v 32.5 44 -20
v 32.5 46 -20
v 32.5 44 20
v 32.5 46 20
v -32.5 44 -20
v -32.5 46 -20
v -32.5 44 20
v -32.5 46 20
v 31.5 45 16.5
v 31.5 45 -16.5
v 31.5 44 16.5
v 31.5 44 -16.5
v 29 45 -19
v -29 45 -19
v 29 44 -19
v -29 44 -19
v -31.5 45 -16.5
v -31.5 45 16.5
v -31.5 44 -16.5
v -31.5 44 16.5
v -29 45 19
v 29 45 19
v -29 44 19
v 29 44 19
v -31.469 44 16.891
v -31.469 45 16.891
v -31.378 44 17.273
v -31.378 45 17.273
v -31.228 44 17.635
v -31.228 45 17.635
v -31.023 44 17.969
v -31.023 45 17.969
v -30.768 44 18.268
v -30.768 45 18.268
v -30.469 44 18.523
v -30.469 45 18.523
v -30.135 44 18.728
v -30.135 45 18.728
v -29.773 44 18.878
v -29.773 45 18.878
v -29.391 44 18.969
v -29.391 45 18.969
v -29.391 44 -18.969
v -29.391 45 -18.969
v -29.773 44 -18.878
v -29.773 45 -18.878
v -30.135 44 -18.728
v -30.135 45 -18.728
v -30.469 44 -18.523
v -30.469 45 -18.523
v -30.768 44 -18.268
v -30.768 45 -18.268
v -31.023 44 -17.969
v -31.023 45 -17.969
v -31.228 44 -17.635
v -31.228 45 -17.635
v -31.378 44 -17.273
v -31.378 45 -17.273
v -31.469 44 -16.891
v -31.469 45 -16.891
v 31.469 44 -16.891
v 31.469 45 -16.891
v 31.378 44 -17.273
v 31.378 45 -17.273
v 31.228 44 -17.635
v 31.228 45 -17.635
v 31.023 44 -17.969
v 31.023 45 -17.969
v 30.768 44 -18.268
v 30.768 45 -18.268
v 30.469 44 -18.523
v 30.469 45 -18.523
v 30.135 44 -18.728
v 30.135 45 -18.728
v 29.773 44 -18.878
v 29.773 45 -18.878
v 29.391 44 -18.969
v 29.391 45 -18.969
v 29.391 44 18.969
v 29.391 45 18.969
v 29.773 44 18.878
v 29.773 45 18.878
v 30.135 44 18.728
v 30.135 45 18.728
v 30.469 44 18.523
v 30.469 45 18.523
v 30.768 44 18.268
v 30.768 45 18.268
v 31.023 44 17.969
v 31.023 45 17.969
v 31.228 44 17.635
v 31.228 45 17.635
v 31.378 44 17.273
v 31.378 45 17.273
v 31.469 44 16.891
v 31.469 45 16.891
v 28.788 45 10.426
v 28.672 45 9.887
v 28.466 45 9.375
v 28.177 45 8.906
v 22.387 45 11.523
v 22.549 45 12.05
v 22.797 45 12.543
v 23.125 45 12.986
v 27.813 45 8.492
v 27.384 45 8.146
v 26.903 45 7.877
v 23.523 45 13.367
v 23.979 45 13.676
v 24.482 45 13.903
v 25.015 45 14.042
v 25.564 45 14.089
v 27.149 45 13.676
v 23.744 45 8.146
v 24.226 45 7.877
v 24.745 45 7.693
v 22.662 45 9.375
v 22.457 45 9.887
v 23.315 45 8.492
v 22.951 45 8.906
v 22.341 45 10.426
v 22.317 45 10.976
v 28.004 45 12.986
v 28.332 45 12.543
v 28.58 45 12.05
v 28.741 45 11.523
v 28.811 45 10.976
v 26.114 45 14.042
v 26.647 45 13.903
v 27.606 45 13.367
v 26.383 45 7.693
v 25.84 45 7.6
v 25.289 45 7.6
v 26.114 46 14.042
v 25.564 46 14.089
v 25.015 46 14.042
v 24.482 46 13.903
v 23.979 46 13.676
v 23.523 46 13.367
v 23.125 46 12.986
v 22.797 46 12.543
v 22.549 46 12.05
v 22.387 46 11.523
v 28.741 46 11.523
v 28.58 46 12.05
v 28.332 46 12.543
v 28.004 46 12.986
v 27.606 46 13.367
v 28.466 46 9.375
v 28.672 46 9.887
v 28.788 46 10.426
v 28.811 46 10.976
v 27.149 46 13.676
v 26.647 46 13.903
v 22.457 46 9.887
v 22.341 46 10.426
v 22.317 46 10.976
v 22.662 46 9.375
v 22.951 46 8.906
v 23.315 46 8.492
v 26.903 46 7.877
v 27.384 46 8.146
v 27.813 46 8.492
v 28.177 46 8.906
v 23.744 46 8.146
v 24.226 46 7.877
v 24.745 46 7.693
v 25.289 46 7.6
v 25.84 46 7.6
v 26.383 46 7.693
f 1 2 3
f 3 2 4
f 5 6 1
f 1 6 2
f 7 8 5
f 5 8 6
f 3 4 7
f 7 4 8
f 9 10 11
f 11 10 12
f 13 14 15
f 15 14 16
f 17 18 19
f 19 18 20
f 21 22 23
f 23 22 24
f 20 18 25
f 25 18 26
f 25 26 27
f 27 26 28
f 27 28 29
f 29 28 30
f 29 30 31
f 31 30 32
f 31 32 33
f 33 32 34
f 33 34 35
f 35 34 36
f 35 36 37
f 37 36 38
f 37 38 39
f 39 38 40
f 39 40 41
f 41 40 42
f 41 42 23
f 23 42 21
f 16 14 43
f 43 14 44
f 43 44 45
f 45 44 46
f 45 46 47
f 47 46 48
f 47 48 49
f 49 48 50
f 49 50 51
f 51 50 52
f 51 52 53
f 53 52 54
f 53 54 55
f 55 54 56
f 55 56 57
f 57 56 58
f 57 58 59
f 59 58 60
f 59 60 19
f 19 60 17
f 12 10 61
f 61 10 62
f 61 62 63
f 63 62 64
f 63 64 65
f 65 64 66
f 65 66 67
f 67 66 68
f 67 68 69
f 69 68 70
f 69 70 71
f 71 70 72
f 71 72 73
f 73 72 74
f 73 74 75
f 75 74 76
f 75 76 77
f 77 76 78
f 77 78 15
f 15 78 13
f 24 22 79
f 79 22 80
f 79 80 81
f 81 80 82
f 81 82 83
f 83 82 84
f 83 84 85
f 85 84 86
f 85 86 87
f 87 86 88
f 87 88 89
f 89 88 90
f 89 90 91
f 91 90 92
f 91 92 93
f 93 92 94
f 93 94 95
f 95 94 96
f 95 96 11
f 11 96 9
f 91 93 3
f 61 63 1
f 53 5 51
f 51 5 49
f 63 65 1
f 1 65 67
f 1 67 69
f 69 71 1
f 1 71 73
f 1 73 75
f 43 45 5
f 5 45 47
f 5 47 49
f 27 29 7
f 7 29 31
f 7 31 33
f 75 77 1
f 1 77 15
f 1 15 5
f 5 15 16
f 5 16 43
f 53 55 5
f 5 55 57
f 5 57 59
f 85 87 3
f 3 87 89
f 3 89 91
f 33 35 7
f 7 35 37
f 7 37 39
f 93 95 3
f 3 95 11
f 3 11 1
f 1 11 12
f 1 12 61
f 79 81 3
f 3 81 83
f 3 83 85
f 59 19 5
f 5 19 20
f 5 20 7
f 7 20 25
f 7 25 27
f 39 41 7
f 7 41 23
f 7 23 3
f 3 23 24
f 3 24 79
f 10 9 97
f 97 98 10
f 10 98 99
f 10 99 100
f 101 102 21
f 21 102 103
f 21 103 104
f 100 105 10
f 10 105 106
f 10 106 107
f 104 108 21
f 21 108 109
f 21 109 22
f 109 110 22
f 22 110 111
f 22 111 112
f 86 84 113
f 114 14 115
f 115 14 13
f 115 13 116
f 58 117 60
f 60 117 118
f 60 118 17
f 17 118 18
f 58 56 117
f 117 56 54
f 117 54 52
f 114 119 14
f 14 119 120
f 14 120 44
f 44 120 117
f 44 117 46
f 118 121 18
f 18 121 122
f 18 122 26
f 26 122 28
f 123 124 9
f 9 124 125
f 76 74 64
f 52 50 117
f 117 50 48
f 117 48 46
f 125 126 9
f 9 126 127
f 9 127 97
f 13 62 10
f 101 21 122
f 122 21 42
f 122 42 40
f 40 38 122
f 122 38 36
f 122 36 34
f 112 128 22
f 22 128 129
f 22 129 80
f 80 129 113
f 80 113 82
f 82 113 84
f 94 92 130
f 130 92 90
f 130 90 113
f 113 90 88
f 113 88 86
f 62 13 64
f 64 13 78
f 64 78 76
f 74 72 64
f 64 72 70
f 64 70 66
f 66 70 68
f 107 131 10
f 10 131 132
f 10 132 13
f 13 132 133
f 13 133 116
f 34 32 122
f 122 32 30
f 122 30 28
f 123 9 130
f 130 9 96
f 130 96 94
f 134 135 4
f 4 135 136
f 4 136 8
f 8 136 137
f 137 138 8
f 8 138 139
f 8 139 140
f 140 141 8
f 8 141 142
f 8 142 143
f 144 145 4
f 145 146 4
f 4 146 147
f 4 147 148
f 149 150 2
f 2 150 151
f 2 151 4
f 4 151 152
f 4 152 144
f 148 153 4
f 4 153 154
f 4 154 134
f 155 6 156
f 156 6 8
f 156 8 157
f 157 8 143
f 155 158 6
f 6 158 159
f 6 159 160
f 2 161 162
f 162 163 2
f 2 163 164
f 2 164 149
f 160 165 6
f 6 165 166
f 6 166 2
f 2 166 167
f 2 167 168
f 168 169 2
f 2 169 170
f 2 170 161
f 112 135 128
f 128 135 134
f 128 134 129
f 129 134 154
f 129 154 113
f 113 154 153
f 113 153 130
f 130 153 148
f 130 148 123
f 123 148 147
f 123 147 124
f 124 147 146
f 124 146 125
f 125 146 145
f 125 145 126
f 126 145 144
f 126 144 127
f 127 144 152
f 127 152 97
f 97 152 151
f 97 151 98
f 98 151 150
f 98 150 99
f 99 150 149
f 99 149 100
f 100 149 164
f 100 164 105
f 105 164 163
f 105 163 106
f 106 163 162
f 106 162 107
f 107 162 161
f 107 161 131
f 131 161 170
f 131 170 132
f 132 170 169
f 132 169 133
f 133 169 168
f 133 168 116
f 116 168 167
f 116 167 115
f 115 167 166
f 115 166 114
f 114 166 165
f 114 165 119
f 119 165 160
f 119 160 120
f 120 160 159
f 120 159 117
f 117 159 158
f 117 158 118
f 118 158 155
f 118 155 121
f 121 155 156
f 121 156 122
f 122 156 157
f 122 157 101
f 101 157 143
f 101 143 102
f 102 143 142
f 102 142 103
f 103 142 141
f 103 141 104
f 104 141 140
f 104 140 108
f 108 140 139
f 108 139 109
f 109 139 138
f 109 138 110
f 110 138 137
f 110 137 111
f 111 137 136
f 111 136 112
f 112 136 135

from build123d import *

# Parameters (mm, degrees)
SKETCH1_W           = 65
SKETCH1_H           = 40
BOSS_EXTRUDE1_DEPTH = 45
SHELL1_T            = -1
SKETCH2_R           = 5
CUT_EXTRUDE1_DEPTH  = 8
SKETCH3_R           = 7.5
CUT_EXTRUDE2_DEPTH  = 8
FILLET1_R           = 2
FILLET2_R           = 2.5
SKETCH5_W           = 66.843722153
SKETCH5_H           = 46.578661822
CUT_EXTRUDE3_DEPTH  = 250
SKETCH7_W           = 65
SKETCH7_H           = 40
BOSS_EXTRUDE3_DEPTH = 1
SKETCH8_R           = 3.25
CUT_EXTRUDE4_DEPTH  = 7


with BuildPart() as part:
    # Sketch1 → Boss-Extrude1 (new body)
    with BuildSketch(Plane(origin=(0, 0, 0), x_dir=(1, 0, 0), z_dir=(0, 1, 0))):
        Rectangle(SKETCH1_W, SKETCH1_H)
    extrude(amount=BOSS_EXTRUDE1_DEPTH)

    # Shell1
    shell1_openings = [part.faces().sort_by_distance(p)[0] for p in [
        (0, 45, 0),
    ]]
    offset(amount=SHELL1_T, openings=shell1_openings, kind=Kind.INTERSECTION)

    # Sketch2 → Cut-Extrude1 (cut)
    with BuildSketch(Plane(origin=(32.5, 0, 0), x_dir=(0, 0, -1), z_dir=(1, 0, 0))):
        with Locations((0, 26)):
            Circle(SKETCH2_R)
    extrude(amount=-CUT_EXTRUDE1_DEPTH, mode=Mode.SUBTRACT)

    # Sketch3 → Cut-Extrude2 (cut)
    with BuildSketch(Plane.XZ):
        with Locations(Location((0, 0, 0), (0, 0, 270))):
            Circle(SKETCH3_R)
    extrude(amount=-CUT_EXTRUDE2_DEPTH, mode=Mode.SUBTRACT)

    # Fillet1
    # the kernel refuses this fillet: 2 mm, written as the material it adds along each edge
    with BuildSketch(Plane(origin=(31.5, 1, 19), x_dir=(0, 1, 0), z_dir=(0, 0, -1)), Plane(origin=(-31.5, 1, -19), x_dir=(0, 1, 0), z_dir=(0, 0, 1))) as fillet1_piece_1:
        with BuildLine():
            CenterArc((FILLET1_R, -FILLET1_R), FILLET1_R, 90, 90)
            Line((0, -FILLET1_R), (0, 0))
            Line((0, 0), (FILLET1_R, 0))
        make_face()
    extrude(amount=38)
    with BuildSketch(Plane(origin=(31.5, 1, -19), x_dir=(0, 1, 0), z_dir=(-1, 0, 0)), Plane(origin=(-31.5, 1, 19), x_dir=(0, 1, 0), z_dir=(1, 0, 0))) as fillet1_piece_2:
        with BuildLine():
            CenterArc((FILLET1_R, -FILLET1_R), FILLET1_R, 90, 90)
            Line((0, -FILLET1_R), (0, 0))
            Line((0, 0), (FILLET1_R, 0))
        make_face()
    extrude(amount=63)
    # the kernel refuses this fillet: 2 mm, written as the material it takes off along each edge
    with BuildSketch(Plane(origin=(0, 1, 0), x_dir=(0, 0, -1), z_dir=(-1, 0, 0))) as fillet1_2_piece_1:
        with BuildLine():
            CenterArc((9.232050808, 2), FILLET1_R, 210, 60)
            Line((9.232050808, 0), (7.5, 0))
            Line((7.5, 0), (7.5, 1))
        make_face()
    revolve(axis=Axis((0, 1, 0), (0, -1, 0)), mode=Mode.SUBTRACT)

    # Fillet2
    # the kernel refuses this fillet: 2.5 mm, written as the material it adds along each edge
    with BuildSketch(Plane(origin=(-29, 1, -16.5), x_dir=(-1, 0, 0), z_dir=(0, 0, 1))) as fillet2_piece_1:
        with BuildLine():
            CenterArc((0.5, -2), 2, 0, 90)
            Line((2.5, -2), (2.5, 0))
            Line((2.5, 0), (0.5, 0))
        make_face()
    revolve(axis=Axis((-29, 1, -16.5), (0, -1, 0)), revolution_arc=90)
    with BuildSketch(Plane(origin=(29, 1, -16.5), x_dir=(0, 0, -1), z_dir=(-1, 0, 0))) as fillet2_piece_2:
        with BuildLine():
            CenterArc((0.5, -2), 2, 0, 90)
            Line((2.5, -2), (2.5, 0))
            Line((2.5, 0), (0.5, 0))
        make_face()
    revolve(axis=Axis((29, 1, -16.5), (0, -1, 0)), revolution_arc=90)
    with BuildSketch(Plane(origin=(-29, 1, 16.5), x_dir=(0, 0, 1), z_dir=(1, 0, 0))) as fillet2_piece_3:
        with BuildLine():
            CenterArc((0.5, -2), 2, 0, 90)
            Line((2.5, -2), (2.5, 0))
            Line((2.5, 0), (0.5, 0))
        make_face()
    revolve(axis=Axis((-29, 1, 16.5), (0, -1, 0)), revolution_arc=90)
    with BuildSketch(Plane(origin=(29, 1, 16.5), x_dir=(1, 0, 0), z_dir=(0, 0, -1))) as fillet2_piece_4:
        with BuildLine():
            CenterArc((0.5, -2), 2, 0, 90)
            Line((2.5, -2), (2.5, 0))
            Line((2.5, 0), (0.5, 0))
        make_face()
    revolve(axis=Axis((29, 1, 16.5), (0, -1, 0)), revolution_arc=90)
    with BuildSketch(Plane(origin=(31.5, 1, 19), x_dir=(0, 0, -1), z_dir=(0, 1, 0)), Plane(origin=(31.5, 1, -19), x_dir=(-1, 0, 0), z_dir=(0, 1, 0)), Plane(origin=(-31.5, 45, 19), x_dir=(0, 0, -1), z_dir=(0, -1, 0))) as fillet2_piece_5:
        with BuildLine():
            CenterArc((FILLET2_R, FILLET2_R), FILLET2_R, 180, 90)
            Line((0, FILLET2_R), (0, 0))
            Line((0, 0), (FILLET2_R, 0))
        make_face()
    extrude(amount=44)
    with BuildSketch(Plane(origin=(-31.5, 1, -19), x_dir=(1, 0, 0), z_dir=(0, 1, 0))) as fillet2_piece_6:
        with BuildLine():
            CenterArc((FILLET2_R, -FILLET2_R), FILLET2_R, 90, 90)
            Line((0, -FILLET2_R), (0, 0))
            Line((0, 0), (FILLET2_R, 0))
        make_face()
    extrude(amount=44)

    # Sketch5 → Cut-Extrude3 (cut)
    with BuildSketch(Plane.XY.offset(20)):
        with Locations((0.921861077, 20.710669089)):
            Rectangle(SKETCH5_W, SKETCH5_H)
    extrude(amount=-CUT_EXTRUDE3_DEPTH, mode=Mode.SUBTRACT)

    # Sketch7 → Boss-Extrude3 (add)
    with BuildSketch(Plane(origin=(0, 45, 0), x_dir=(1, 0, 0), z_dir=(0, 1, 0))):
        Rectangle(SKETCH7_W, SKETCH7_H)
    extrude(amount=BOSS_EXTRUDE3_DEPTH)

    # Sketch8 → Cut-Extrude4 (cut)
    with BuildSketch(Plane(origin=(0, 46, 0), x_dir=(1, 0, 0), z_dir=(0, 1, 0))):
        with Locations(Location((25.564279631, -10.838515608, 0), (0, 0, 270))):
            Circle(SKETCH8_R)
    extrude(amount=-CUT_EXTRUDE4_DEPTH, mode=Mode.SUBTRACT)


solid = part.part
